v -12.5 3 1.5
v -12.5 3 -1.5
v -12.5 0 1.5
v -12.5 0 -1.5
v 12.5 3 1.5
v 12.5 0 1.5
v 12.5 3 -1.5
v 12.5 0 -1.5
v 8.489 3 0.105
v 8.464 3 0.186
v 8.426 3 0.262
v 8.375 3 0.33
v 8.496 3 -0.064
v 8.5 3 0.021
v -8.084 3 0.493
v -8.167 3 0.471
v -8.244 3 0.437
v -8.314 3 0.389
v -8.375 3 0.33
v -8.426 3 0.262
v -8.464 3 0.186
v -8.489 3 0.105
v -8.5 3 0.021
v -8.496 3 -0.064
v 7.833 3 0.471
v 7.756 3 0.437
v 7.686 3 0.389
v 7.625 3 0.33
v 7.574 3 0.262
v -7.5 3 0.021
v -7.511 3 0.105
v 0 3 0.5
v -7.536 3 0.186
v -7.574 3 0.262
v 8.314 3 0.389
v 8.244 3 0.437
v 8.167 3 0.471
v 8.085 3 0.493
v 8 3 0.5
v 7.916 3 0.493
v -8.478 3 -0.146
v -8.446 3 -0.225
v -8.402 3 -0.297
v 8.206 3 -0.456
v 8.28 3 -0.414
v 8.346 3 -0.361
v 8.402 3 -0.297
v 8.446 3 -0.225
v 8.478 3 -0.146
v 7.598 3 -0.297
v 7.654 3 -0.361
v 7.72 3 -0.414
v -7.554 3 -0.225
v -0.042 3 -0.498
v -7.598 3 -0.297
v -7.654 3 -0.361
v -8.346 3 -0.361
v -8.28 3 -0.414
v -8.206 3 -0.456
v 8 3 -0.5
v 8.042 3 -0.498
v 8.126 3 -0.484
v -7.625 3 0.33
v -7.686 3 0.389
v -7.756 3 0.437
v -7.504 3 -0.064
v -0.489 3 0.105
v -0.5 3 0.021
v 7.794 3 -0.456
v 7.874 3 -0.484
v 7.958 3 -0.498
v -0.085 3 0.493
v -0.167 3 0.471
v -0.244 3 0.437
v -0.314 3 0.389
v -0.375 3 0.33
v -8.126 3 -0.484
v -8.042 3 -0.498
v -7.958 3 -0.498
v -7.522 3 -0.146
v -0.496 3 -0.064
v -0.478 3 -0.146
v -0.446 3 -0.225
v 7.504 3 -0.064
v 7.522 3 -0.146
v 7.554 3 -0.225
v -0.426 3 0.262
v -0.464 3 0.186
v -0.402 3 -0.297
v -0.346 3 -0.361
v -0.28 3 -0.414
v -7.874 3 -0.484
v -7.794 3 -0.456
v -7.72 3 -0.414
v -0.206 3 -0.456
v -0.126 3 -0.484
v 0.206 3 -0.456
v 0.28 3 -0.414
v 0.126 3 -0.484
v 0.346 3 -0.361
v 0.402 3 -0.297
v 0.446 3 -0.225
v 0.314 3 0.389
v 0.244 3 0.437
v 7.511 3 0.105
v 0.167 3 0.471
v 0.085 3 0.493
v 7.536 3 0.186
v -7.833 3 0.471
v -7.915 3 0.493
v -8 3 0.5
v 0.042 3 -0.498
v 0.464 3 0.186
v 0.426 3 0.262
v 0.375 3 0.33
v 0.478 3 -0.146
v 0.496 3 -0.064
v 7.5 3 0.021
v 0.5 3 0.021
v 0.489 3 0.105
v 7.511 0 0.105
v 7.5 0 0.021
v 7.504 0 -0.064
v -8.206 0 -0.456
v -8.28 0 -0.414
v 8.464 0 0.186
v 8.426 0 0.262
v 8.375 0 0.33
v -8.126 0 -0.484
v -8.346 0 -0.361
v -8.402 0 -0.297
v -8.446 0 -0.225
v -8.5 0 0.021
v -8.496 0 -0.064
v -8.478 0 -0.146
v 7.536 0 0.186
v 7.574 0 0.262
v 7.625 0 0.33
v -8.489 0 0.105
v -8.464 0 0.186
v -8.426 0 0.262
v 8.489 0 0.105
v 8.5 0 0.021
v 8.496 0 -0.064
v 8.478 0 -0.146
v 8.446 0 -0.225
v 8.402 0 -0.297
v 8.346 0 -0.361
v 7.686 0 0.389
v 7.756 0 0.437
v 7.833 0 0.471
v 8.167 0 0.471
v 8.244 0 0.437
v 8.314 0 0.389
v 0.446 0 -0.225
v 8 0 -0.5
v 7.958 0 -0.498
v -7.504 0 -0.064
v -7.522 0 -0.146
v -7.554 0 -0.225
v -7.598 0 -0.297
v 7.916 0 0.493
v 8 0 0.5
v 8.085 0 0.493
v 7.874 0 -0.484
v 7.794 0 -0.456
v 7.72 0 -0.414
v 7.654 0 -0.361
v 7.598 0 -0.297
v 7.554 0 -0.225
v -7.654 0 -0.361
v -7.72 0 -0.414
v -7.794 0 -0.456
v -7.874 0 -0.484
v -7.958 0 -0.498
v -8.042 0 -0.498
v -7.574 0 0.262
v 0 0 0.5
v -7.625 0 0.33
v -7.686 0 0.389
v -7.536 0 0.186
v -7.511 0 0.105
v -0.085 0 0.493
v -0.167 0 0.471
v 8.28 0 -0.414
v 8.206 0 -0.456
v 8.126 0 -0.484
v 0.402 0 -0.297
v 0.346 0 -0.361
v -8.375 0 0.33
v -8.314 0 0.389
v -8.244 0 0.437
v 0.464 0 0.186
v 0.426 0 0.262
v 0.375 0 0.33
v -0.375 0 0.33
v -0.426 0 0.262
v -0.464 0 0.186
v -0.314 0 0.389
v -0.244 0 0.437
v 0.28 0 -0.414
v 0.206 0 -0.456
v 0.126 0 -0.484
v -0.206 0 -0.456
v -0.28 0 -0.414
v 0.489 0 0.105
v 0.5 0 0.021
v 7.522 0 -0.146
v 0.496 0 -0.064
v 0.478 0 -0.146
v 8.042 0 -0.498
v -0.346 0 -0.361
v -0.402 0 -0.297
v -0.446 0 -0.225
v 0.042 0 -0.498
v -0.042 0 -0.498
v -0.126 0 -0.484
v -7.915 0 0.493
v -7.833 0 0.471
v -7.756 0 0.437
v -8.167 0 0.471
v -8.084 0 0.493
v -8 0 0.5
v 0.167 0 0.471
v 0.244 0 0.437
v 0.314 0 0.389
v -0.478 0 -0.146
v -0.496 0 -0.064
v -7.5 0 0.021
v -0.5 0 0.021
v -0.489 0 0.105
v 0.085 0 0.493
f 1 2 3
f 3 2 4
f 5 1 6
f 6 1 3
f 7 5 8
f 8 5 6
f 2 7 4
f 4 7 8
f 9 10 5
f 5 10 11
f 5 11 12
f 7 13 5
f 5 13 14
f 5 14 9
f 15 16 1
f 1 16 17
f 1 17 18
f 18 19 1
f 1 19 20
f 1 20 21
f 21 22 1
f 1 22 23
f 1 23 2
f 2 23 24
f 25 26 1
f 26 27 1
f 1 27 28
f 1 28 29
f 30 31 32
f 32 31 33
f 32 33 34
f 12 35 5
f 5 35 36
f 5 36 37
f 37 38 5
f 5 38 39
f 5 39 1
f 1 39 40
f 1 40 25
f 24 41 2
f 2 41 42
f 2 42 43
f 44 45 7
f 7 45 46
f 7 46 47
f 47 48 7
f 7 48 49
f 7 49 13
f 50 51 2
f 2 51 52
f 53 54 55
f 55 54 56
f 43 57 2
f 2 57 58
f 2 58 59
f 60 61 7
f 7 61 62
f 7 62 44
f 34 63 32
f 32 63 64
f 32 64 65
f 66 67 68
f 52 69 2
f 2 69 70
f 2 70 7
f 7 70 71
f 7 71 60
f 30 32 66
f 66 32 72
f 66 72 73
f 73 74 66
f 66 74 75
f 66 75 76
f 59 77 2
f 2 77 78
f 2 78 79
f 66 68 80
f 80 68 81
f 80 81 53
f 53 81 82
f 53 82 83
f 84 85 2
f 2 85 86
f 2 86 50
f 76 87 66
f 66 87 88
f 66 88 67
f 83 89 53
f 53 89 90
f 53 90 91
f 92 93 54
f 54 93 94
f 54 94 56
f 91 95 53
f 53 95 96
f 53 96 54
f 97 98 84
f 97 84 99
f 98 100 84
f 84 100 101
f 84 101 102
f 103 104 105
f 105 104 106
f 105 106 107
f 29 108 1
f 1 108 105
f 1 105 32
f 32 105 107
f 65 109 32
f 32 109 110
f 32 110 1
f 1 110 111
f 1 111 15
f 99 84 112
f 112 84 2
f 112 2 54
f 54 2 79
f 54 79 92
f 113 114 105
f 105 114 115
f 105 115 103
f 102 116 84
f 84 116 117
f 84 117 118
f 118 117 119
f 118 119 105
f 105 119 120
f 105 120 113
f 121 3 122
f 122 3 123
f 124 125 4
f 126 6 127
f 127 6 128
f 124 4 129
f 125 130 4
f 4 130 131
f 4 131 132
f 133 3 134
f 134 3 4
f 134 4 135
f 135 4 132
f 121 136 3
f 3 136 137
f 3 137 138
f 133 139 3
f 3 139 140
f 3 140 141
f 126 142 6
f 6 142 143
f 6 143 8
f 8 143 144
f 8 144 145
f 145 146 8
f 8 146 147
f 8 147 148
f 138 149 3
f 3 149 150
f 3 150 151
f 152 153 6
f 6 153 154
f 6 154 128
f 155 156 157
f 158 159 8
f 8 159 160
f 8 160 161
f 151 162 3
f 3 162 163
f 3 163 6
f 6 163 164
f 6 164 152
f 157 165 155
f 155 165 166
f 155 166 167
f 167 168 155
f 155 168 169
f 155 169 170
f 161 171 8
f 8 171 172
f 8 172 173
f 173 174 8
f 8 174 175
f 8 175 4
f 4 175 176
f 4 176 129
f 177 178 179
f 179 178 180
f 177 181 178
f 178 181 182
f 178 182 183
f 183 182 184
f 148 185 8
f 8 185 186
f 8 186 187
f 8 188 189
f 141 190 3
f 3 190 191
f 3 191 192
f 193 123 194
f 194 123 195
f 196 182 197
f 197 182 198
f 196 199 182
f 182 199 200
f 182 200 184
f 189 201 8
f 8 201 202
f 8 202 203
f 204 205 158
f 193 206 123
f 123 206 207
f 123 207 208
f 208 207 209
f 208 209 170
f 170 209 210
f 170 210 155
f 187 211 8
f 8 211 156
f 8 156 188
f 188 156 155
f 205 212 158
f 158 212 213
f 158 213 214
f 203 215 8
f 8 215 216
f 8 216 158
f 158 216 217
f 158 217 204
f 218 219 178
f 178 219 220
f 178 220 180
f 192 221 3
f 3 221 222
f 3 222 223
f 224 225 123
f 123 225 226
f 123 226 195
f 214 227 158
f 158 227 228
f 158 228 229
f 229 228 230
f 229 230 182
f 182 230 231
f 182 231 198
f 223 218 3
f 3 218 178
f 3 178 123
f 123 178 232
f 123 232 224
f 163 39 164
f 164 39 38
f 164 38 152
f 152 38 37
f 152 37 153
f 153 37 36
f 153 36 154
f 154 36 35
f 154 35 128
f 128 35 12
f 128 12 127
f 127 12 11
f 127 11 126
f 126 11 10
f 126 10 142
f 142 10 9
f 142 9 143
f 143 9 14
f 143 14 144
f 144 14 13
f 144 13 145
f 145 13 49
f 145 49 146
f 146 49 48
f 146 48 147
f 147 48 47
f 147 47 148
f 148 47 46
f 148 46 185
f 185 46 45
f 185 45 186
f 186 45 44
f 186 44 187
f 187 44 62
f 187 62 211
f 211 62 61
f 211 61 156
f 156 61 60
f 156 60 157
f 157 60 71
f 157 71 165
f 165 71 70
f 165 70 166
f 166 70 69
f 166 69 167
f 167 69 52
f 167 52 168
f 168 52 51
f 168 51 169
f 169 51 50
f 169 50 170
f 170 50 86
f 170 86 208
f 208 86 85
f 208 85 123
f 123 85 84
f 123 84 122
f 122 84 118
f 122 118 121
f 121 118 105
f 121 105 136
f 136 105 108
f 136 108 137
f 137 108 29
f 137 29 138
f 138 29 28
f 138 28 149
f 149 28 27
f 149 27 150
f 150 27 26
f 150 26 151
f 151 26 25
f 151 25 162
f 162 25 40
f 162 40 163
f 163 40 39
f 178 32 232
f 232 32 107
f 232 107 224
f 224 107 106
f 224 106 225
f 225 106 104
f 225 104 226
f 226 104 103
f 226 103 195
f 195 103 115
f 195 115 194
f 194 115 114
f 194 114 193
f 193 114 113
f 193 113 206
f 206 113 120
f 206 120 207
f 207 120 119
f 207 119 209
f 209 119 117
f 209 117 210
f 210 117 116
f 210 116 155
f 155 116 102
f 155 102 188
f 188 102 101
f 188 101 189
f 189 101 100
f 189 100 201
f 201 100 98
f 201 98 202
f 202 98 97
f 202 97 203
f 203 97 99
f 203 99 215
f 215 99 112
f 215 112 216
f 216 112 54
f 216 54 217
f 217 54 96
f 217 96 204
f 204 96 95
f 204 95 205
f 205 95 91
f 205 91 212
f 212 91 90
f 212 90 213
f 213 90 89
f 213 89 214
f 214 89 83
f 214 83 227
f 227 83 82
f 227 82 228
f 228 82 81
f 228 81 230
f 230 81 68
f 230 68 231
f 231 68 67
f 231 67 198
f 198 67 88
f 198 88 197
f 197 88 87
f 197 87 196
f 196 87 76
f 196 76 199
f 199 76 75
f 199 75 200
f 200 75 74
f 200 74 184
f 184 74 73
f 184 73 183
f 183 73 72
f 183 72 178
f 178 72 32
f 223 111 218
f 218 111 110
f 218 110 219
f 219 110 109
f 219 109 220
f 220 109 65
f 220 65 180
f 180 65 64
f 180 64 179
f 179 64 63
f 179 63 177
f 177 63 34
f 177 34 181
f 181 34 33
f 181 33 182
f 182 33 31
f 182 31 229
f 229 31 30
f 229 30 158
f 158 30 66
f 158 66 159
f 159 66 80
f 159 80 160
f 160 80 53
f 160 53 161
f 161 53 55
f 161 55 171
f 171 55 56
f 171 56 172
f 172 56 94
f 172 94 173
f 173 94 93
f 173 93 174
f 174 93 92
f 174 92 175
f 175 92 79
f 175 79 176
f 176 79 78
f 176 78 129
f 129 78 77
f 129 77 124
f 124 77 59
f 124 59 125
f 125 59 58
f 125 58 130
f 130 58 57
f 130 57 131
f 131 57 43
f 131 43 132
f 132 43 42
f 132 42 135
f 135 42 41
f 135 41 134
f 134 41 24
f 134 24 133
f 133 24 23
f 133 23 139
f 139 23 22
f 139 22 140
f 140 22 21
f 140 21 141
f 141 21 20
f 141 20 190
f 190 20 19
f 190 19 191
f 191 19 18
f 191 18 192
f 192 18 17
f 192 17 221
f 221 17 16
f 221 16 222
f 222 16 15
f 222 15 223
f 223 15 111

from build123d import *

# Parameters (mm, degrees)
SKETCH_1_W          = 25
SKETCH_1_H          = 3
EXTRUDE_1_DEPTH     = 3
SKETCH_2_R          = 0.5
CUT_EXTRUDE_1_DEPTH = 4


with BuildPart() as part:
    # 草图1 → 凸台-拉伸1 (new body)
    with BuildSketch(Plane(origin=(0, 0, 0), x_dir=(1, 0, 0), z_dir=(0, 1, 0))):
        Rectangle(SKETCH_1_W, SKETCH_1_H)
    extrude(amount=EXTRUDE_1_DEPTH)

    # 草图2 → 切除-拉伸1 (cut, through all)
    with BuildSketch(Plane(origin=(0, 3, 0), x_dir=(1, 0, 0), z_dir=(0, 1, 0))):
        with Locations((-8, 0)):
            Circle(SKETCH_2_R)
        Circle(SKETCH_2_R)
        with Locations((8, 0)):
            Circle(SKETCH_2_R)
    extrude(amount=-CUT_EXTRUDE_1_DEPTH, mode=Mode.SUBTRACT)


solid = part.part
